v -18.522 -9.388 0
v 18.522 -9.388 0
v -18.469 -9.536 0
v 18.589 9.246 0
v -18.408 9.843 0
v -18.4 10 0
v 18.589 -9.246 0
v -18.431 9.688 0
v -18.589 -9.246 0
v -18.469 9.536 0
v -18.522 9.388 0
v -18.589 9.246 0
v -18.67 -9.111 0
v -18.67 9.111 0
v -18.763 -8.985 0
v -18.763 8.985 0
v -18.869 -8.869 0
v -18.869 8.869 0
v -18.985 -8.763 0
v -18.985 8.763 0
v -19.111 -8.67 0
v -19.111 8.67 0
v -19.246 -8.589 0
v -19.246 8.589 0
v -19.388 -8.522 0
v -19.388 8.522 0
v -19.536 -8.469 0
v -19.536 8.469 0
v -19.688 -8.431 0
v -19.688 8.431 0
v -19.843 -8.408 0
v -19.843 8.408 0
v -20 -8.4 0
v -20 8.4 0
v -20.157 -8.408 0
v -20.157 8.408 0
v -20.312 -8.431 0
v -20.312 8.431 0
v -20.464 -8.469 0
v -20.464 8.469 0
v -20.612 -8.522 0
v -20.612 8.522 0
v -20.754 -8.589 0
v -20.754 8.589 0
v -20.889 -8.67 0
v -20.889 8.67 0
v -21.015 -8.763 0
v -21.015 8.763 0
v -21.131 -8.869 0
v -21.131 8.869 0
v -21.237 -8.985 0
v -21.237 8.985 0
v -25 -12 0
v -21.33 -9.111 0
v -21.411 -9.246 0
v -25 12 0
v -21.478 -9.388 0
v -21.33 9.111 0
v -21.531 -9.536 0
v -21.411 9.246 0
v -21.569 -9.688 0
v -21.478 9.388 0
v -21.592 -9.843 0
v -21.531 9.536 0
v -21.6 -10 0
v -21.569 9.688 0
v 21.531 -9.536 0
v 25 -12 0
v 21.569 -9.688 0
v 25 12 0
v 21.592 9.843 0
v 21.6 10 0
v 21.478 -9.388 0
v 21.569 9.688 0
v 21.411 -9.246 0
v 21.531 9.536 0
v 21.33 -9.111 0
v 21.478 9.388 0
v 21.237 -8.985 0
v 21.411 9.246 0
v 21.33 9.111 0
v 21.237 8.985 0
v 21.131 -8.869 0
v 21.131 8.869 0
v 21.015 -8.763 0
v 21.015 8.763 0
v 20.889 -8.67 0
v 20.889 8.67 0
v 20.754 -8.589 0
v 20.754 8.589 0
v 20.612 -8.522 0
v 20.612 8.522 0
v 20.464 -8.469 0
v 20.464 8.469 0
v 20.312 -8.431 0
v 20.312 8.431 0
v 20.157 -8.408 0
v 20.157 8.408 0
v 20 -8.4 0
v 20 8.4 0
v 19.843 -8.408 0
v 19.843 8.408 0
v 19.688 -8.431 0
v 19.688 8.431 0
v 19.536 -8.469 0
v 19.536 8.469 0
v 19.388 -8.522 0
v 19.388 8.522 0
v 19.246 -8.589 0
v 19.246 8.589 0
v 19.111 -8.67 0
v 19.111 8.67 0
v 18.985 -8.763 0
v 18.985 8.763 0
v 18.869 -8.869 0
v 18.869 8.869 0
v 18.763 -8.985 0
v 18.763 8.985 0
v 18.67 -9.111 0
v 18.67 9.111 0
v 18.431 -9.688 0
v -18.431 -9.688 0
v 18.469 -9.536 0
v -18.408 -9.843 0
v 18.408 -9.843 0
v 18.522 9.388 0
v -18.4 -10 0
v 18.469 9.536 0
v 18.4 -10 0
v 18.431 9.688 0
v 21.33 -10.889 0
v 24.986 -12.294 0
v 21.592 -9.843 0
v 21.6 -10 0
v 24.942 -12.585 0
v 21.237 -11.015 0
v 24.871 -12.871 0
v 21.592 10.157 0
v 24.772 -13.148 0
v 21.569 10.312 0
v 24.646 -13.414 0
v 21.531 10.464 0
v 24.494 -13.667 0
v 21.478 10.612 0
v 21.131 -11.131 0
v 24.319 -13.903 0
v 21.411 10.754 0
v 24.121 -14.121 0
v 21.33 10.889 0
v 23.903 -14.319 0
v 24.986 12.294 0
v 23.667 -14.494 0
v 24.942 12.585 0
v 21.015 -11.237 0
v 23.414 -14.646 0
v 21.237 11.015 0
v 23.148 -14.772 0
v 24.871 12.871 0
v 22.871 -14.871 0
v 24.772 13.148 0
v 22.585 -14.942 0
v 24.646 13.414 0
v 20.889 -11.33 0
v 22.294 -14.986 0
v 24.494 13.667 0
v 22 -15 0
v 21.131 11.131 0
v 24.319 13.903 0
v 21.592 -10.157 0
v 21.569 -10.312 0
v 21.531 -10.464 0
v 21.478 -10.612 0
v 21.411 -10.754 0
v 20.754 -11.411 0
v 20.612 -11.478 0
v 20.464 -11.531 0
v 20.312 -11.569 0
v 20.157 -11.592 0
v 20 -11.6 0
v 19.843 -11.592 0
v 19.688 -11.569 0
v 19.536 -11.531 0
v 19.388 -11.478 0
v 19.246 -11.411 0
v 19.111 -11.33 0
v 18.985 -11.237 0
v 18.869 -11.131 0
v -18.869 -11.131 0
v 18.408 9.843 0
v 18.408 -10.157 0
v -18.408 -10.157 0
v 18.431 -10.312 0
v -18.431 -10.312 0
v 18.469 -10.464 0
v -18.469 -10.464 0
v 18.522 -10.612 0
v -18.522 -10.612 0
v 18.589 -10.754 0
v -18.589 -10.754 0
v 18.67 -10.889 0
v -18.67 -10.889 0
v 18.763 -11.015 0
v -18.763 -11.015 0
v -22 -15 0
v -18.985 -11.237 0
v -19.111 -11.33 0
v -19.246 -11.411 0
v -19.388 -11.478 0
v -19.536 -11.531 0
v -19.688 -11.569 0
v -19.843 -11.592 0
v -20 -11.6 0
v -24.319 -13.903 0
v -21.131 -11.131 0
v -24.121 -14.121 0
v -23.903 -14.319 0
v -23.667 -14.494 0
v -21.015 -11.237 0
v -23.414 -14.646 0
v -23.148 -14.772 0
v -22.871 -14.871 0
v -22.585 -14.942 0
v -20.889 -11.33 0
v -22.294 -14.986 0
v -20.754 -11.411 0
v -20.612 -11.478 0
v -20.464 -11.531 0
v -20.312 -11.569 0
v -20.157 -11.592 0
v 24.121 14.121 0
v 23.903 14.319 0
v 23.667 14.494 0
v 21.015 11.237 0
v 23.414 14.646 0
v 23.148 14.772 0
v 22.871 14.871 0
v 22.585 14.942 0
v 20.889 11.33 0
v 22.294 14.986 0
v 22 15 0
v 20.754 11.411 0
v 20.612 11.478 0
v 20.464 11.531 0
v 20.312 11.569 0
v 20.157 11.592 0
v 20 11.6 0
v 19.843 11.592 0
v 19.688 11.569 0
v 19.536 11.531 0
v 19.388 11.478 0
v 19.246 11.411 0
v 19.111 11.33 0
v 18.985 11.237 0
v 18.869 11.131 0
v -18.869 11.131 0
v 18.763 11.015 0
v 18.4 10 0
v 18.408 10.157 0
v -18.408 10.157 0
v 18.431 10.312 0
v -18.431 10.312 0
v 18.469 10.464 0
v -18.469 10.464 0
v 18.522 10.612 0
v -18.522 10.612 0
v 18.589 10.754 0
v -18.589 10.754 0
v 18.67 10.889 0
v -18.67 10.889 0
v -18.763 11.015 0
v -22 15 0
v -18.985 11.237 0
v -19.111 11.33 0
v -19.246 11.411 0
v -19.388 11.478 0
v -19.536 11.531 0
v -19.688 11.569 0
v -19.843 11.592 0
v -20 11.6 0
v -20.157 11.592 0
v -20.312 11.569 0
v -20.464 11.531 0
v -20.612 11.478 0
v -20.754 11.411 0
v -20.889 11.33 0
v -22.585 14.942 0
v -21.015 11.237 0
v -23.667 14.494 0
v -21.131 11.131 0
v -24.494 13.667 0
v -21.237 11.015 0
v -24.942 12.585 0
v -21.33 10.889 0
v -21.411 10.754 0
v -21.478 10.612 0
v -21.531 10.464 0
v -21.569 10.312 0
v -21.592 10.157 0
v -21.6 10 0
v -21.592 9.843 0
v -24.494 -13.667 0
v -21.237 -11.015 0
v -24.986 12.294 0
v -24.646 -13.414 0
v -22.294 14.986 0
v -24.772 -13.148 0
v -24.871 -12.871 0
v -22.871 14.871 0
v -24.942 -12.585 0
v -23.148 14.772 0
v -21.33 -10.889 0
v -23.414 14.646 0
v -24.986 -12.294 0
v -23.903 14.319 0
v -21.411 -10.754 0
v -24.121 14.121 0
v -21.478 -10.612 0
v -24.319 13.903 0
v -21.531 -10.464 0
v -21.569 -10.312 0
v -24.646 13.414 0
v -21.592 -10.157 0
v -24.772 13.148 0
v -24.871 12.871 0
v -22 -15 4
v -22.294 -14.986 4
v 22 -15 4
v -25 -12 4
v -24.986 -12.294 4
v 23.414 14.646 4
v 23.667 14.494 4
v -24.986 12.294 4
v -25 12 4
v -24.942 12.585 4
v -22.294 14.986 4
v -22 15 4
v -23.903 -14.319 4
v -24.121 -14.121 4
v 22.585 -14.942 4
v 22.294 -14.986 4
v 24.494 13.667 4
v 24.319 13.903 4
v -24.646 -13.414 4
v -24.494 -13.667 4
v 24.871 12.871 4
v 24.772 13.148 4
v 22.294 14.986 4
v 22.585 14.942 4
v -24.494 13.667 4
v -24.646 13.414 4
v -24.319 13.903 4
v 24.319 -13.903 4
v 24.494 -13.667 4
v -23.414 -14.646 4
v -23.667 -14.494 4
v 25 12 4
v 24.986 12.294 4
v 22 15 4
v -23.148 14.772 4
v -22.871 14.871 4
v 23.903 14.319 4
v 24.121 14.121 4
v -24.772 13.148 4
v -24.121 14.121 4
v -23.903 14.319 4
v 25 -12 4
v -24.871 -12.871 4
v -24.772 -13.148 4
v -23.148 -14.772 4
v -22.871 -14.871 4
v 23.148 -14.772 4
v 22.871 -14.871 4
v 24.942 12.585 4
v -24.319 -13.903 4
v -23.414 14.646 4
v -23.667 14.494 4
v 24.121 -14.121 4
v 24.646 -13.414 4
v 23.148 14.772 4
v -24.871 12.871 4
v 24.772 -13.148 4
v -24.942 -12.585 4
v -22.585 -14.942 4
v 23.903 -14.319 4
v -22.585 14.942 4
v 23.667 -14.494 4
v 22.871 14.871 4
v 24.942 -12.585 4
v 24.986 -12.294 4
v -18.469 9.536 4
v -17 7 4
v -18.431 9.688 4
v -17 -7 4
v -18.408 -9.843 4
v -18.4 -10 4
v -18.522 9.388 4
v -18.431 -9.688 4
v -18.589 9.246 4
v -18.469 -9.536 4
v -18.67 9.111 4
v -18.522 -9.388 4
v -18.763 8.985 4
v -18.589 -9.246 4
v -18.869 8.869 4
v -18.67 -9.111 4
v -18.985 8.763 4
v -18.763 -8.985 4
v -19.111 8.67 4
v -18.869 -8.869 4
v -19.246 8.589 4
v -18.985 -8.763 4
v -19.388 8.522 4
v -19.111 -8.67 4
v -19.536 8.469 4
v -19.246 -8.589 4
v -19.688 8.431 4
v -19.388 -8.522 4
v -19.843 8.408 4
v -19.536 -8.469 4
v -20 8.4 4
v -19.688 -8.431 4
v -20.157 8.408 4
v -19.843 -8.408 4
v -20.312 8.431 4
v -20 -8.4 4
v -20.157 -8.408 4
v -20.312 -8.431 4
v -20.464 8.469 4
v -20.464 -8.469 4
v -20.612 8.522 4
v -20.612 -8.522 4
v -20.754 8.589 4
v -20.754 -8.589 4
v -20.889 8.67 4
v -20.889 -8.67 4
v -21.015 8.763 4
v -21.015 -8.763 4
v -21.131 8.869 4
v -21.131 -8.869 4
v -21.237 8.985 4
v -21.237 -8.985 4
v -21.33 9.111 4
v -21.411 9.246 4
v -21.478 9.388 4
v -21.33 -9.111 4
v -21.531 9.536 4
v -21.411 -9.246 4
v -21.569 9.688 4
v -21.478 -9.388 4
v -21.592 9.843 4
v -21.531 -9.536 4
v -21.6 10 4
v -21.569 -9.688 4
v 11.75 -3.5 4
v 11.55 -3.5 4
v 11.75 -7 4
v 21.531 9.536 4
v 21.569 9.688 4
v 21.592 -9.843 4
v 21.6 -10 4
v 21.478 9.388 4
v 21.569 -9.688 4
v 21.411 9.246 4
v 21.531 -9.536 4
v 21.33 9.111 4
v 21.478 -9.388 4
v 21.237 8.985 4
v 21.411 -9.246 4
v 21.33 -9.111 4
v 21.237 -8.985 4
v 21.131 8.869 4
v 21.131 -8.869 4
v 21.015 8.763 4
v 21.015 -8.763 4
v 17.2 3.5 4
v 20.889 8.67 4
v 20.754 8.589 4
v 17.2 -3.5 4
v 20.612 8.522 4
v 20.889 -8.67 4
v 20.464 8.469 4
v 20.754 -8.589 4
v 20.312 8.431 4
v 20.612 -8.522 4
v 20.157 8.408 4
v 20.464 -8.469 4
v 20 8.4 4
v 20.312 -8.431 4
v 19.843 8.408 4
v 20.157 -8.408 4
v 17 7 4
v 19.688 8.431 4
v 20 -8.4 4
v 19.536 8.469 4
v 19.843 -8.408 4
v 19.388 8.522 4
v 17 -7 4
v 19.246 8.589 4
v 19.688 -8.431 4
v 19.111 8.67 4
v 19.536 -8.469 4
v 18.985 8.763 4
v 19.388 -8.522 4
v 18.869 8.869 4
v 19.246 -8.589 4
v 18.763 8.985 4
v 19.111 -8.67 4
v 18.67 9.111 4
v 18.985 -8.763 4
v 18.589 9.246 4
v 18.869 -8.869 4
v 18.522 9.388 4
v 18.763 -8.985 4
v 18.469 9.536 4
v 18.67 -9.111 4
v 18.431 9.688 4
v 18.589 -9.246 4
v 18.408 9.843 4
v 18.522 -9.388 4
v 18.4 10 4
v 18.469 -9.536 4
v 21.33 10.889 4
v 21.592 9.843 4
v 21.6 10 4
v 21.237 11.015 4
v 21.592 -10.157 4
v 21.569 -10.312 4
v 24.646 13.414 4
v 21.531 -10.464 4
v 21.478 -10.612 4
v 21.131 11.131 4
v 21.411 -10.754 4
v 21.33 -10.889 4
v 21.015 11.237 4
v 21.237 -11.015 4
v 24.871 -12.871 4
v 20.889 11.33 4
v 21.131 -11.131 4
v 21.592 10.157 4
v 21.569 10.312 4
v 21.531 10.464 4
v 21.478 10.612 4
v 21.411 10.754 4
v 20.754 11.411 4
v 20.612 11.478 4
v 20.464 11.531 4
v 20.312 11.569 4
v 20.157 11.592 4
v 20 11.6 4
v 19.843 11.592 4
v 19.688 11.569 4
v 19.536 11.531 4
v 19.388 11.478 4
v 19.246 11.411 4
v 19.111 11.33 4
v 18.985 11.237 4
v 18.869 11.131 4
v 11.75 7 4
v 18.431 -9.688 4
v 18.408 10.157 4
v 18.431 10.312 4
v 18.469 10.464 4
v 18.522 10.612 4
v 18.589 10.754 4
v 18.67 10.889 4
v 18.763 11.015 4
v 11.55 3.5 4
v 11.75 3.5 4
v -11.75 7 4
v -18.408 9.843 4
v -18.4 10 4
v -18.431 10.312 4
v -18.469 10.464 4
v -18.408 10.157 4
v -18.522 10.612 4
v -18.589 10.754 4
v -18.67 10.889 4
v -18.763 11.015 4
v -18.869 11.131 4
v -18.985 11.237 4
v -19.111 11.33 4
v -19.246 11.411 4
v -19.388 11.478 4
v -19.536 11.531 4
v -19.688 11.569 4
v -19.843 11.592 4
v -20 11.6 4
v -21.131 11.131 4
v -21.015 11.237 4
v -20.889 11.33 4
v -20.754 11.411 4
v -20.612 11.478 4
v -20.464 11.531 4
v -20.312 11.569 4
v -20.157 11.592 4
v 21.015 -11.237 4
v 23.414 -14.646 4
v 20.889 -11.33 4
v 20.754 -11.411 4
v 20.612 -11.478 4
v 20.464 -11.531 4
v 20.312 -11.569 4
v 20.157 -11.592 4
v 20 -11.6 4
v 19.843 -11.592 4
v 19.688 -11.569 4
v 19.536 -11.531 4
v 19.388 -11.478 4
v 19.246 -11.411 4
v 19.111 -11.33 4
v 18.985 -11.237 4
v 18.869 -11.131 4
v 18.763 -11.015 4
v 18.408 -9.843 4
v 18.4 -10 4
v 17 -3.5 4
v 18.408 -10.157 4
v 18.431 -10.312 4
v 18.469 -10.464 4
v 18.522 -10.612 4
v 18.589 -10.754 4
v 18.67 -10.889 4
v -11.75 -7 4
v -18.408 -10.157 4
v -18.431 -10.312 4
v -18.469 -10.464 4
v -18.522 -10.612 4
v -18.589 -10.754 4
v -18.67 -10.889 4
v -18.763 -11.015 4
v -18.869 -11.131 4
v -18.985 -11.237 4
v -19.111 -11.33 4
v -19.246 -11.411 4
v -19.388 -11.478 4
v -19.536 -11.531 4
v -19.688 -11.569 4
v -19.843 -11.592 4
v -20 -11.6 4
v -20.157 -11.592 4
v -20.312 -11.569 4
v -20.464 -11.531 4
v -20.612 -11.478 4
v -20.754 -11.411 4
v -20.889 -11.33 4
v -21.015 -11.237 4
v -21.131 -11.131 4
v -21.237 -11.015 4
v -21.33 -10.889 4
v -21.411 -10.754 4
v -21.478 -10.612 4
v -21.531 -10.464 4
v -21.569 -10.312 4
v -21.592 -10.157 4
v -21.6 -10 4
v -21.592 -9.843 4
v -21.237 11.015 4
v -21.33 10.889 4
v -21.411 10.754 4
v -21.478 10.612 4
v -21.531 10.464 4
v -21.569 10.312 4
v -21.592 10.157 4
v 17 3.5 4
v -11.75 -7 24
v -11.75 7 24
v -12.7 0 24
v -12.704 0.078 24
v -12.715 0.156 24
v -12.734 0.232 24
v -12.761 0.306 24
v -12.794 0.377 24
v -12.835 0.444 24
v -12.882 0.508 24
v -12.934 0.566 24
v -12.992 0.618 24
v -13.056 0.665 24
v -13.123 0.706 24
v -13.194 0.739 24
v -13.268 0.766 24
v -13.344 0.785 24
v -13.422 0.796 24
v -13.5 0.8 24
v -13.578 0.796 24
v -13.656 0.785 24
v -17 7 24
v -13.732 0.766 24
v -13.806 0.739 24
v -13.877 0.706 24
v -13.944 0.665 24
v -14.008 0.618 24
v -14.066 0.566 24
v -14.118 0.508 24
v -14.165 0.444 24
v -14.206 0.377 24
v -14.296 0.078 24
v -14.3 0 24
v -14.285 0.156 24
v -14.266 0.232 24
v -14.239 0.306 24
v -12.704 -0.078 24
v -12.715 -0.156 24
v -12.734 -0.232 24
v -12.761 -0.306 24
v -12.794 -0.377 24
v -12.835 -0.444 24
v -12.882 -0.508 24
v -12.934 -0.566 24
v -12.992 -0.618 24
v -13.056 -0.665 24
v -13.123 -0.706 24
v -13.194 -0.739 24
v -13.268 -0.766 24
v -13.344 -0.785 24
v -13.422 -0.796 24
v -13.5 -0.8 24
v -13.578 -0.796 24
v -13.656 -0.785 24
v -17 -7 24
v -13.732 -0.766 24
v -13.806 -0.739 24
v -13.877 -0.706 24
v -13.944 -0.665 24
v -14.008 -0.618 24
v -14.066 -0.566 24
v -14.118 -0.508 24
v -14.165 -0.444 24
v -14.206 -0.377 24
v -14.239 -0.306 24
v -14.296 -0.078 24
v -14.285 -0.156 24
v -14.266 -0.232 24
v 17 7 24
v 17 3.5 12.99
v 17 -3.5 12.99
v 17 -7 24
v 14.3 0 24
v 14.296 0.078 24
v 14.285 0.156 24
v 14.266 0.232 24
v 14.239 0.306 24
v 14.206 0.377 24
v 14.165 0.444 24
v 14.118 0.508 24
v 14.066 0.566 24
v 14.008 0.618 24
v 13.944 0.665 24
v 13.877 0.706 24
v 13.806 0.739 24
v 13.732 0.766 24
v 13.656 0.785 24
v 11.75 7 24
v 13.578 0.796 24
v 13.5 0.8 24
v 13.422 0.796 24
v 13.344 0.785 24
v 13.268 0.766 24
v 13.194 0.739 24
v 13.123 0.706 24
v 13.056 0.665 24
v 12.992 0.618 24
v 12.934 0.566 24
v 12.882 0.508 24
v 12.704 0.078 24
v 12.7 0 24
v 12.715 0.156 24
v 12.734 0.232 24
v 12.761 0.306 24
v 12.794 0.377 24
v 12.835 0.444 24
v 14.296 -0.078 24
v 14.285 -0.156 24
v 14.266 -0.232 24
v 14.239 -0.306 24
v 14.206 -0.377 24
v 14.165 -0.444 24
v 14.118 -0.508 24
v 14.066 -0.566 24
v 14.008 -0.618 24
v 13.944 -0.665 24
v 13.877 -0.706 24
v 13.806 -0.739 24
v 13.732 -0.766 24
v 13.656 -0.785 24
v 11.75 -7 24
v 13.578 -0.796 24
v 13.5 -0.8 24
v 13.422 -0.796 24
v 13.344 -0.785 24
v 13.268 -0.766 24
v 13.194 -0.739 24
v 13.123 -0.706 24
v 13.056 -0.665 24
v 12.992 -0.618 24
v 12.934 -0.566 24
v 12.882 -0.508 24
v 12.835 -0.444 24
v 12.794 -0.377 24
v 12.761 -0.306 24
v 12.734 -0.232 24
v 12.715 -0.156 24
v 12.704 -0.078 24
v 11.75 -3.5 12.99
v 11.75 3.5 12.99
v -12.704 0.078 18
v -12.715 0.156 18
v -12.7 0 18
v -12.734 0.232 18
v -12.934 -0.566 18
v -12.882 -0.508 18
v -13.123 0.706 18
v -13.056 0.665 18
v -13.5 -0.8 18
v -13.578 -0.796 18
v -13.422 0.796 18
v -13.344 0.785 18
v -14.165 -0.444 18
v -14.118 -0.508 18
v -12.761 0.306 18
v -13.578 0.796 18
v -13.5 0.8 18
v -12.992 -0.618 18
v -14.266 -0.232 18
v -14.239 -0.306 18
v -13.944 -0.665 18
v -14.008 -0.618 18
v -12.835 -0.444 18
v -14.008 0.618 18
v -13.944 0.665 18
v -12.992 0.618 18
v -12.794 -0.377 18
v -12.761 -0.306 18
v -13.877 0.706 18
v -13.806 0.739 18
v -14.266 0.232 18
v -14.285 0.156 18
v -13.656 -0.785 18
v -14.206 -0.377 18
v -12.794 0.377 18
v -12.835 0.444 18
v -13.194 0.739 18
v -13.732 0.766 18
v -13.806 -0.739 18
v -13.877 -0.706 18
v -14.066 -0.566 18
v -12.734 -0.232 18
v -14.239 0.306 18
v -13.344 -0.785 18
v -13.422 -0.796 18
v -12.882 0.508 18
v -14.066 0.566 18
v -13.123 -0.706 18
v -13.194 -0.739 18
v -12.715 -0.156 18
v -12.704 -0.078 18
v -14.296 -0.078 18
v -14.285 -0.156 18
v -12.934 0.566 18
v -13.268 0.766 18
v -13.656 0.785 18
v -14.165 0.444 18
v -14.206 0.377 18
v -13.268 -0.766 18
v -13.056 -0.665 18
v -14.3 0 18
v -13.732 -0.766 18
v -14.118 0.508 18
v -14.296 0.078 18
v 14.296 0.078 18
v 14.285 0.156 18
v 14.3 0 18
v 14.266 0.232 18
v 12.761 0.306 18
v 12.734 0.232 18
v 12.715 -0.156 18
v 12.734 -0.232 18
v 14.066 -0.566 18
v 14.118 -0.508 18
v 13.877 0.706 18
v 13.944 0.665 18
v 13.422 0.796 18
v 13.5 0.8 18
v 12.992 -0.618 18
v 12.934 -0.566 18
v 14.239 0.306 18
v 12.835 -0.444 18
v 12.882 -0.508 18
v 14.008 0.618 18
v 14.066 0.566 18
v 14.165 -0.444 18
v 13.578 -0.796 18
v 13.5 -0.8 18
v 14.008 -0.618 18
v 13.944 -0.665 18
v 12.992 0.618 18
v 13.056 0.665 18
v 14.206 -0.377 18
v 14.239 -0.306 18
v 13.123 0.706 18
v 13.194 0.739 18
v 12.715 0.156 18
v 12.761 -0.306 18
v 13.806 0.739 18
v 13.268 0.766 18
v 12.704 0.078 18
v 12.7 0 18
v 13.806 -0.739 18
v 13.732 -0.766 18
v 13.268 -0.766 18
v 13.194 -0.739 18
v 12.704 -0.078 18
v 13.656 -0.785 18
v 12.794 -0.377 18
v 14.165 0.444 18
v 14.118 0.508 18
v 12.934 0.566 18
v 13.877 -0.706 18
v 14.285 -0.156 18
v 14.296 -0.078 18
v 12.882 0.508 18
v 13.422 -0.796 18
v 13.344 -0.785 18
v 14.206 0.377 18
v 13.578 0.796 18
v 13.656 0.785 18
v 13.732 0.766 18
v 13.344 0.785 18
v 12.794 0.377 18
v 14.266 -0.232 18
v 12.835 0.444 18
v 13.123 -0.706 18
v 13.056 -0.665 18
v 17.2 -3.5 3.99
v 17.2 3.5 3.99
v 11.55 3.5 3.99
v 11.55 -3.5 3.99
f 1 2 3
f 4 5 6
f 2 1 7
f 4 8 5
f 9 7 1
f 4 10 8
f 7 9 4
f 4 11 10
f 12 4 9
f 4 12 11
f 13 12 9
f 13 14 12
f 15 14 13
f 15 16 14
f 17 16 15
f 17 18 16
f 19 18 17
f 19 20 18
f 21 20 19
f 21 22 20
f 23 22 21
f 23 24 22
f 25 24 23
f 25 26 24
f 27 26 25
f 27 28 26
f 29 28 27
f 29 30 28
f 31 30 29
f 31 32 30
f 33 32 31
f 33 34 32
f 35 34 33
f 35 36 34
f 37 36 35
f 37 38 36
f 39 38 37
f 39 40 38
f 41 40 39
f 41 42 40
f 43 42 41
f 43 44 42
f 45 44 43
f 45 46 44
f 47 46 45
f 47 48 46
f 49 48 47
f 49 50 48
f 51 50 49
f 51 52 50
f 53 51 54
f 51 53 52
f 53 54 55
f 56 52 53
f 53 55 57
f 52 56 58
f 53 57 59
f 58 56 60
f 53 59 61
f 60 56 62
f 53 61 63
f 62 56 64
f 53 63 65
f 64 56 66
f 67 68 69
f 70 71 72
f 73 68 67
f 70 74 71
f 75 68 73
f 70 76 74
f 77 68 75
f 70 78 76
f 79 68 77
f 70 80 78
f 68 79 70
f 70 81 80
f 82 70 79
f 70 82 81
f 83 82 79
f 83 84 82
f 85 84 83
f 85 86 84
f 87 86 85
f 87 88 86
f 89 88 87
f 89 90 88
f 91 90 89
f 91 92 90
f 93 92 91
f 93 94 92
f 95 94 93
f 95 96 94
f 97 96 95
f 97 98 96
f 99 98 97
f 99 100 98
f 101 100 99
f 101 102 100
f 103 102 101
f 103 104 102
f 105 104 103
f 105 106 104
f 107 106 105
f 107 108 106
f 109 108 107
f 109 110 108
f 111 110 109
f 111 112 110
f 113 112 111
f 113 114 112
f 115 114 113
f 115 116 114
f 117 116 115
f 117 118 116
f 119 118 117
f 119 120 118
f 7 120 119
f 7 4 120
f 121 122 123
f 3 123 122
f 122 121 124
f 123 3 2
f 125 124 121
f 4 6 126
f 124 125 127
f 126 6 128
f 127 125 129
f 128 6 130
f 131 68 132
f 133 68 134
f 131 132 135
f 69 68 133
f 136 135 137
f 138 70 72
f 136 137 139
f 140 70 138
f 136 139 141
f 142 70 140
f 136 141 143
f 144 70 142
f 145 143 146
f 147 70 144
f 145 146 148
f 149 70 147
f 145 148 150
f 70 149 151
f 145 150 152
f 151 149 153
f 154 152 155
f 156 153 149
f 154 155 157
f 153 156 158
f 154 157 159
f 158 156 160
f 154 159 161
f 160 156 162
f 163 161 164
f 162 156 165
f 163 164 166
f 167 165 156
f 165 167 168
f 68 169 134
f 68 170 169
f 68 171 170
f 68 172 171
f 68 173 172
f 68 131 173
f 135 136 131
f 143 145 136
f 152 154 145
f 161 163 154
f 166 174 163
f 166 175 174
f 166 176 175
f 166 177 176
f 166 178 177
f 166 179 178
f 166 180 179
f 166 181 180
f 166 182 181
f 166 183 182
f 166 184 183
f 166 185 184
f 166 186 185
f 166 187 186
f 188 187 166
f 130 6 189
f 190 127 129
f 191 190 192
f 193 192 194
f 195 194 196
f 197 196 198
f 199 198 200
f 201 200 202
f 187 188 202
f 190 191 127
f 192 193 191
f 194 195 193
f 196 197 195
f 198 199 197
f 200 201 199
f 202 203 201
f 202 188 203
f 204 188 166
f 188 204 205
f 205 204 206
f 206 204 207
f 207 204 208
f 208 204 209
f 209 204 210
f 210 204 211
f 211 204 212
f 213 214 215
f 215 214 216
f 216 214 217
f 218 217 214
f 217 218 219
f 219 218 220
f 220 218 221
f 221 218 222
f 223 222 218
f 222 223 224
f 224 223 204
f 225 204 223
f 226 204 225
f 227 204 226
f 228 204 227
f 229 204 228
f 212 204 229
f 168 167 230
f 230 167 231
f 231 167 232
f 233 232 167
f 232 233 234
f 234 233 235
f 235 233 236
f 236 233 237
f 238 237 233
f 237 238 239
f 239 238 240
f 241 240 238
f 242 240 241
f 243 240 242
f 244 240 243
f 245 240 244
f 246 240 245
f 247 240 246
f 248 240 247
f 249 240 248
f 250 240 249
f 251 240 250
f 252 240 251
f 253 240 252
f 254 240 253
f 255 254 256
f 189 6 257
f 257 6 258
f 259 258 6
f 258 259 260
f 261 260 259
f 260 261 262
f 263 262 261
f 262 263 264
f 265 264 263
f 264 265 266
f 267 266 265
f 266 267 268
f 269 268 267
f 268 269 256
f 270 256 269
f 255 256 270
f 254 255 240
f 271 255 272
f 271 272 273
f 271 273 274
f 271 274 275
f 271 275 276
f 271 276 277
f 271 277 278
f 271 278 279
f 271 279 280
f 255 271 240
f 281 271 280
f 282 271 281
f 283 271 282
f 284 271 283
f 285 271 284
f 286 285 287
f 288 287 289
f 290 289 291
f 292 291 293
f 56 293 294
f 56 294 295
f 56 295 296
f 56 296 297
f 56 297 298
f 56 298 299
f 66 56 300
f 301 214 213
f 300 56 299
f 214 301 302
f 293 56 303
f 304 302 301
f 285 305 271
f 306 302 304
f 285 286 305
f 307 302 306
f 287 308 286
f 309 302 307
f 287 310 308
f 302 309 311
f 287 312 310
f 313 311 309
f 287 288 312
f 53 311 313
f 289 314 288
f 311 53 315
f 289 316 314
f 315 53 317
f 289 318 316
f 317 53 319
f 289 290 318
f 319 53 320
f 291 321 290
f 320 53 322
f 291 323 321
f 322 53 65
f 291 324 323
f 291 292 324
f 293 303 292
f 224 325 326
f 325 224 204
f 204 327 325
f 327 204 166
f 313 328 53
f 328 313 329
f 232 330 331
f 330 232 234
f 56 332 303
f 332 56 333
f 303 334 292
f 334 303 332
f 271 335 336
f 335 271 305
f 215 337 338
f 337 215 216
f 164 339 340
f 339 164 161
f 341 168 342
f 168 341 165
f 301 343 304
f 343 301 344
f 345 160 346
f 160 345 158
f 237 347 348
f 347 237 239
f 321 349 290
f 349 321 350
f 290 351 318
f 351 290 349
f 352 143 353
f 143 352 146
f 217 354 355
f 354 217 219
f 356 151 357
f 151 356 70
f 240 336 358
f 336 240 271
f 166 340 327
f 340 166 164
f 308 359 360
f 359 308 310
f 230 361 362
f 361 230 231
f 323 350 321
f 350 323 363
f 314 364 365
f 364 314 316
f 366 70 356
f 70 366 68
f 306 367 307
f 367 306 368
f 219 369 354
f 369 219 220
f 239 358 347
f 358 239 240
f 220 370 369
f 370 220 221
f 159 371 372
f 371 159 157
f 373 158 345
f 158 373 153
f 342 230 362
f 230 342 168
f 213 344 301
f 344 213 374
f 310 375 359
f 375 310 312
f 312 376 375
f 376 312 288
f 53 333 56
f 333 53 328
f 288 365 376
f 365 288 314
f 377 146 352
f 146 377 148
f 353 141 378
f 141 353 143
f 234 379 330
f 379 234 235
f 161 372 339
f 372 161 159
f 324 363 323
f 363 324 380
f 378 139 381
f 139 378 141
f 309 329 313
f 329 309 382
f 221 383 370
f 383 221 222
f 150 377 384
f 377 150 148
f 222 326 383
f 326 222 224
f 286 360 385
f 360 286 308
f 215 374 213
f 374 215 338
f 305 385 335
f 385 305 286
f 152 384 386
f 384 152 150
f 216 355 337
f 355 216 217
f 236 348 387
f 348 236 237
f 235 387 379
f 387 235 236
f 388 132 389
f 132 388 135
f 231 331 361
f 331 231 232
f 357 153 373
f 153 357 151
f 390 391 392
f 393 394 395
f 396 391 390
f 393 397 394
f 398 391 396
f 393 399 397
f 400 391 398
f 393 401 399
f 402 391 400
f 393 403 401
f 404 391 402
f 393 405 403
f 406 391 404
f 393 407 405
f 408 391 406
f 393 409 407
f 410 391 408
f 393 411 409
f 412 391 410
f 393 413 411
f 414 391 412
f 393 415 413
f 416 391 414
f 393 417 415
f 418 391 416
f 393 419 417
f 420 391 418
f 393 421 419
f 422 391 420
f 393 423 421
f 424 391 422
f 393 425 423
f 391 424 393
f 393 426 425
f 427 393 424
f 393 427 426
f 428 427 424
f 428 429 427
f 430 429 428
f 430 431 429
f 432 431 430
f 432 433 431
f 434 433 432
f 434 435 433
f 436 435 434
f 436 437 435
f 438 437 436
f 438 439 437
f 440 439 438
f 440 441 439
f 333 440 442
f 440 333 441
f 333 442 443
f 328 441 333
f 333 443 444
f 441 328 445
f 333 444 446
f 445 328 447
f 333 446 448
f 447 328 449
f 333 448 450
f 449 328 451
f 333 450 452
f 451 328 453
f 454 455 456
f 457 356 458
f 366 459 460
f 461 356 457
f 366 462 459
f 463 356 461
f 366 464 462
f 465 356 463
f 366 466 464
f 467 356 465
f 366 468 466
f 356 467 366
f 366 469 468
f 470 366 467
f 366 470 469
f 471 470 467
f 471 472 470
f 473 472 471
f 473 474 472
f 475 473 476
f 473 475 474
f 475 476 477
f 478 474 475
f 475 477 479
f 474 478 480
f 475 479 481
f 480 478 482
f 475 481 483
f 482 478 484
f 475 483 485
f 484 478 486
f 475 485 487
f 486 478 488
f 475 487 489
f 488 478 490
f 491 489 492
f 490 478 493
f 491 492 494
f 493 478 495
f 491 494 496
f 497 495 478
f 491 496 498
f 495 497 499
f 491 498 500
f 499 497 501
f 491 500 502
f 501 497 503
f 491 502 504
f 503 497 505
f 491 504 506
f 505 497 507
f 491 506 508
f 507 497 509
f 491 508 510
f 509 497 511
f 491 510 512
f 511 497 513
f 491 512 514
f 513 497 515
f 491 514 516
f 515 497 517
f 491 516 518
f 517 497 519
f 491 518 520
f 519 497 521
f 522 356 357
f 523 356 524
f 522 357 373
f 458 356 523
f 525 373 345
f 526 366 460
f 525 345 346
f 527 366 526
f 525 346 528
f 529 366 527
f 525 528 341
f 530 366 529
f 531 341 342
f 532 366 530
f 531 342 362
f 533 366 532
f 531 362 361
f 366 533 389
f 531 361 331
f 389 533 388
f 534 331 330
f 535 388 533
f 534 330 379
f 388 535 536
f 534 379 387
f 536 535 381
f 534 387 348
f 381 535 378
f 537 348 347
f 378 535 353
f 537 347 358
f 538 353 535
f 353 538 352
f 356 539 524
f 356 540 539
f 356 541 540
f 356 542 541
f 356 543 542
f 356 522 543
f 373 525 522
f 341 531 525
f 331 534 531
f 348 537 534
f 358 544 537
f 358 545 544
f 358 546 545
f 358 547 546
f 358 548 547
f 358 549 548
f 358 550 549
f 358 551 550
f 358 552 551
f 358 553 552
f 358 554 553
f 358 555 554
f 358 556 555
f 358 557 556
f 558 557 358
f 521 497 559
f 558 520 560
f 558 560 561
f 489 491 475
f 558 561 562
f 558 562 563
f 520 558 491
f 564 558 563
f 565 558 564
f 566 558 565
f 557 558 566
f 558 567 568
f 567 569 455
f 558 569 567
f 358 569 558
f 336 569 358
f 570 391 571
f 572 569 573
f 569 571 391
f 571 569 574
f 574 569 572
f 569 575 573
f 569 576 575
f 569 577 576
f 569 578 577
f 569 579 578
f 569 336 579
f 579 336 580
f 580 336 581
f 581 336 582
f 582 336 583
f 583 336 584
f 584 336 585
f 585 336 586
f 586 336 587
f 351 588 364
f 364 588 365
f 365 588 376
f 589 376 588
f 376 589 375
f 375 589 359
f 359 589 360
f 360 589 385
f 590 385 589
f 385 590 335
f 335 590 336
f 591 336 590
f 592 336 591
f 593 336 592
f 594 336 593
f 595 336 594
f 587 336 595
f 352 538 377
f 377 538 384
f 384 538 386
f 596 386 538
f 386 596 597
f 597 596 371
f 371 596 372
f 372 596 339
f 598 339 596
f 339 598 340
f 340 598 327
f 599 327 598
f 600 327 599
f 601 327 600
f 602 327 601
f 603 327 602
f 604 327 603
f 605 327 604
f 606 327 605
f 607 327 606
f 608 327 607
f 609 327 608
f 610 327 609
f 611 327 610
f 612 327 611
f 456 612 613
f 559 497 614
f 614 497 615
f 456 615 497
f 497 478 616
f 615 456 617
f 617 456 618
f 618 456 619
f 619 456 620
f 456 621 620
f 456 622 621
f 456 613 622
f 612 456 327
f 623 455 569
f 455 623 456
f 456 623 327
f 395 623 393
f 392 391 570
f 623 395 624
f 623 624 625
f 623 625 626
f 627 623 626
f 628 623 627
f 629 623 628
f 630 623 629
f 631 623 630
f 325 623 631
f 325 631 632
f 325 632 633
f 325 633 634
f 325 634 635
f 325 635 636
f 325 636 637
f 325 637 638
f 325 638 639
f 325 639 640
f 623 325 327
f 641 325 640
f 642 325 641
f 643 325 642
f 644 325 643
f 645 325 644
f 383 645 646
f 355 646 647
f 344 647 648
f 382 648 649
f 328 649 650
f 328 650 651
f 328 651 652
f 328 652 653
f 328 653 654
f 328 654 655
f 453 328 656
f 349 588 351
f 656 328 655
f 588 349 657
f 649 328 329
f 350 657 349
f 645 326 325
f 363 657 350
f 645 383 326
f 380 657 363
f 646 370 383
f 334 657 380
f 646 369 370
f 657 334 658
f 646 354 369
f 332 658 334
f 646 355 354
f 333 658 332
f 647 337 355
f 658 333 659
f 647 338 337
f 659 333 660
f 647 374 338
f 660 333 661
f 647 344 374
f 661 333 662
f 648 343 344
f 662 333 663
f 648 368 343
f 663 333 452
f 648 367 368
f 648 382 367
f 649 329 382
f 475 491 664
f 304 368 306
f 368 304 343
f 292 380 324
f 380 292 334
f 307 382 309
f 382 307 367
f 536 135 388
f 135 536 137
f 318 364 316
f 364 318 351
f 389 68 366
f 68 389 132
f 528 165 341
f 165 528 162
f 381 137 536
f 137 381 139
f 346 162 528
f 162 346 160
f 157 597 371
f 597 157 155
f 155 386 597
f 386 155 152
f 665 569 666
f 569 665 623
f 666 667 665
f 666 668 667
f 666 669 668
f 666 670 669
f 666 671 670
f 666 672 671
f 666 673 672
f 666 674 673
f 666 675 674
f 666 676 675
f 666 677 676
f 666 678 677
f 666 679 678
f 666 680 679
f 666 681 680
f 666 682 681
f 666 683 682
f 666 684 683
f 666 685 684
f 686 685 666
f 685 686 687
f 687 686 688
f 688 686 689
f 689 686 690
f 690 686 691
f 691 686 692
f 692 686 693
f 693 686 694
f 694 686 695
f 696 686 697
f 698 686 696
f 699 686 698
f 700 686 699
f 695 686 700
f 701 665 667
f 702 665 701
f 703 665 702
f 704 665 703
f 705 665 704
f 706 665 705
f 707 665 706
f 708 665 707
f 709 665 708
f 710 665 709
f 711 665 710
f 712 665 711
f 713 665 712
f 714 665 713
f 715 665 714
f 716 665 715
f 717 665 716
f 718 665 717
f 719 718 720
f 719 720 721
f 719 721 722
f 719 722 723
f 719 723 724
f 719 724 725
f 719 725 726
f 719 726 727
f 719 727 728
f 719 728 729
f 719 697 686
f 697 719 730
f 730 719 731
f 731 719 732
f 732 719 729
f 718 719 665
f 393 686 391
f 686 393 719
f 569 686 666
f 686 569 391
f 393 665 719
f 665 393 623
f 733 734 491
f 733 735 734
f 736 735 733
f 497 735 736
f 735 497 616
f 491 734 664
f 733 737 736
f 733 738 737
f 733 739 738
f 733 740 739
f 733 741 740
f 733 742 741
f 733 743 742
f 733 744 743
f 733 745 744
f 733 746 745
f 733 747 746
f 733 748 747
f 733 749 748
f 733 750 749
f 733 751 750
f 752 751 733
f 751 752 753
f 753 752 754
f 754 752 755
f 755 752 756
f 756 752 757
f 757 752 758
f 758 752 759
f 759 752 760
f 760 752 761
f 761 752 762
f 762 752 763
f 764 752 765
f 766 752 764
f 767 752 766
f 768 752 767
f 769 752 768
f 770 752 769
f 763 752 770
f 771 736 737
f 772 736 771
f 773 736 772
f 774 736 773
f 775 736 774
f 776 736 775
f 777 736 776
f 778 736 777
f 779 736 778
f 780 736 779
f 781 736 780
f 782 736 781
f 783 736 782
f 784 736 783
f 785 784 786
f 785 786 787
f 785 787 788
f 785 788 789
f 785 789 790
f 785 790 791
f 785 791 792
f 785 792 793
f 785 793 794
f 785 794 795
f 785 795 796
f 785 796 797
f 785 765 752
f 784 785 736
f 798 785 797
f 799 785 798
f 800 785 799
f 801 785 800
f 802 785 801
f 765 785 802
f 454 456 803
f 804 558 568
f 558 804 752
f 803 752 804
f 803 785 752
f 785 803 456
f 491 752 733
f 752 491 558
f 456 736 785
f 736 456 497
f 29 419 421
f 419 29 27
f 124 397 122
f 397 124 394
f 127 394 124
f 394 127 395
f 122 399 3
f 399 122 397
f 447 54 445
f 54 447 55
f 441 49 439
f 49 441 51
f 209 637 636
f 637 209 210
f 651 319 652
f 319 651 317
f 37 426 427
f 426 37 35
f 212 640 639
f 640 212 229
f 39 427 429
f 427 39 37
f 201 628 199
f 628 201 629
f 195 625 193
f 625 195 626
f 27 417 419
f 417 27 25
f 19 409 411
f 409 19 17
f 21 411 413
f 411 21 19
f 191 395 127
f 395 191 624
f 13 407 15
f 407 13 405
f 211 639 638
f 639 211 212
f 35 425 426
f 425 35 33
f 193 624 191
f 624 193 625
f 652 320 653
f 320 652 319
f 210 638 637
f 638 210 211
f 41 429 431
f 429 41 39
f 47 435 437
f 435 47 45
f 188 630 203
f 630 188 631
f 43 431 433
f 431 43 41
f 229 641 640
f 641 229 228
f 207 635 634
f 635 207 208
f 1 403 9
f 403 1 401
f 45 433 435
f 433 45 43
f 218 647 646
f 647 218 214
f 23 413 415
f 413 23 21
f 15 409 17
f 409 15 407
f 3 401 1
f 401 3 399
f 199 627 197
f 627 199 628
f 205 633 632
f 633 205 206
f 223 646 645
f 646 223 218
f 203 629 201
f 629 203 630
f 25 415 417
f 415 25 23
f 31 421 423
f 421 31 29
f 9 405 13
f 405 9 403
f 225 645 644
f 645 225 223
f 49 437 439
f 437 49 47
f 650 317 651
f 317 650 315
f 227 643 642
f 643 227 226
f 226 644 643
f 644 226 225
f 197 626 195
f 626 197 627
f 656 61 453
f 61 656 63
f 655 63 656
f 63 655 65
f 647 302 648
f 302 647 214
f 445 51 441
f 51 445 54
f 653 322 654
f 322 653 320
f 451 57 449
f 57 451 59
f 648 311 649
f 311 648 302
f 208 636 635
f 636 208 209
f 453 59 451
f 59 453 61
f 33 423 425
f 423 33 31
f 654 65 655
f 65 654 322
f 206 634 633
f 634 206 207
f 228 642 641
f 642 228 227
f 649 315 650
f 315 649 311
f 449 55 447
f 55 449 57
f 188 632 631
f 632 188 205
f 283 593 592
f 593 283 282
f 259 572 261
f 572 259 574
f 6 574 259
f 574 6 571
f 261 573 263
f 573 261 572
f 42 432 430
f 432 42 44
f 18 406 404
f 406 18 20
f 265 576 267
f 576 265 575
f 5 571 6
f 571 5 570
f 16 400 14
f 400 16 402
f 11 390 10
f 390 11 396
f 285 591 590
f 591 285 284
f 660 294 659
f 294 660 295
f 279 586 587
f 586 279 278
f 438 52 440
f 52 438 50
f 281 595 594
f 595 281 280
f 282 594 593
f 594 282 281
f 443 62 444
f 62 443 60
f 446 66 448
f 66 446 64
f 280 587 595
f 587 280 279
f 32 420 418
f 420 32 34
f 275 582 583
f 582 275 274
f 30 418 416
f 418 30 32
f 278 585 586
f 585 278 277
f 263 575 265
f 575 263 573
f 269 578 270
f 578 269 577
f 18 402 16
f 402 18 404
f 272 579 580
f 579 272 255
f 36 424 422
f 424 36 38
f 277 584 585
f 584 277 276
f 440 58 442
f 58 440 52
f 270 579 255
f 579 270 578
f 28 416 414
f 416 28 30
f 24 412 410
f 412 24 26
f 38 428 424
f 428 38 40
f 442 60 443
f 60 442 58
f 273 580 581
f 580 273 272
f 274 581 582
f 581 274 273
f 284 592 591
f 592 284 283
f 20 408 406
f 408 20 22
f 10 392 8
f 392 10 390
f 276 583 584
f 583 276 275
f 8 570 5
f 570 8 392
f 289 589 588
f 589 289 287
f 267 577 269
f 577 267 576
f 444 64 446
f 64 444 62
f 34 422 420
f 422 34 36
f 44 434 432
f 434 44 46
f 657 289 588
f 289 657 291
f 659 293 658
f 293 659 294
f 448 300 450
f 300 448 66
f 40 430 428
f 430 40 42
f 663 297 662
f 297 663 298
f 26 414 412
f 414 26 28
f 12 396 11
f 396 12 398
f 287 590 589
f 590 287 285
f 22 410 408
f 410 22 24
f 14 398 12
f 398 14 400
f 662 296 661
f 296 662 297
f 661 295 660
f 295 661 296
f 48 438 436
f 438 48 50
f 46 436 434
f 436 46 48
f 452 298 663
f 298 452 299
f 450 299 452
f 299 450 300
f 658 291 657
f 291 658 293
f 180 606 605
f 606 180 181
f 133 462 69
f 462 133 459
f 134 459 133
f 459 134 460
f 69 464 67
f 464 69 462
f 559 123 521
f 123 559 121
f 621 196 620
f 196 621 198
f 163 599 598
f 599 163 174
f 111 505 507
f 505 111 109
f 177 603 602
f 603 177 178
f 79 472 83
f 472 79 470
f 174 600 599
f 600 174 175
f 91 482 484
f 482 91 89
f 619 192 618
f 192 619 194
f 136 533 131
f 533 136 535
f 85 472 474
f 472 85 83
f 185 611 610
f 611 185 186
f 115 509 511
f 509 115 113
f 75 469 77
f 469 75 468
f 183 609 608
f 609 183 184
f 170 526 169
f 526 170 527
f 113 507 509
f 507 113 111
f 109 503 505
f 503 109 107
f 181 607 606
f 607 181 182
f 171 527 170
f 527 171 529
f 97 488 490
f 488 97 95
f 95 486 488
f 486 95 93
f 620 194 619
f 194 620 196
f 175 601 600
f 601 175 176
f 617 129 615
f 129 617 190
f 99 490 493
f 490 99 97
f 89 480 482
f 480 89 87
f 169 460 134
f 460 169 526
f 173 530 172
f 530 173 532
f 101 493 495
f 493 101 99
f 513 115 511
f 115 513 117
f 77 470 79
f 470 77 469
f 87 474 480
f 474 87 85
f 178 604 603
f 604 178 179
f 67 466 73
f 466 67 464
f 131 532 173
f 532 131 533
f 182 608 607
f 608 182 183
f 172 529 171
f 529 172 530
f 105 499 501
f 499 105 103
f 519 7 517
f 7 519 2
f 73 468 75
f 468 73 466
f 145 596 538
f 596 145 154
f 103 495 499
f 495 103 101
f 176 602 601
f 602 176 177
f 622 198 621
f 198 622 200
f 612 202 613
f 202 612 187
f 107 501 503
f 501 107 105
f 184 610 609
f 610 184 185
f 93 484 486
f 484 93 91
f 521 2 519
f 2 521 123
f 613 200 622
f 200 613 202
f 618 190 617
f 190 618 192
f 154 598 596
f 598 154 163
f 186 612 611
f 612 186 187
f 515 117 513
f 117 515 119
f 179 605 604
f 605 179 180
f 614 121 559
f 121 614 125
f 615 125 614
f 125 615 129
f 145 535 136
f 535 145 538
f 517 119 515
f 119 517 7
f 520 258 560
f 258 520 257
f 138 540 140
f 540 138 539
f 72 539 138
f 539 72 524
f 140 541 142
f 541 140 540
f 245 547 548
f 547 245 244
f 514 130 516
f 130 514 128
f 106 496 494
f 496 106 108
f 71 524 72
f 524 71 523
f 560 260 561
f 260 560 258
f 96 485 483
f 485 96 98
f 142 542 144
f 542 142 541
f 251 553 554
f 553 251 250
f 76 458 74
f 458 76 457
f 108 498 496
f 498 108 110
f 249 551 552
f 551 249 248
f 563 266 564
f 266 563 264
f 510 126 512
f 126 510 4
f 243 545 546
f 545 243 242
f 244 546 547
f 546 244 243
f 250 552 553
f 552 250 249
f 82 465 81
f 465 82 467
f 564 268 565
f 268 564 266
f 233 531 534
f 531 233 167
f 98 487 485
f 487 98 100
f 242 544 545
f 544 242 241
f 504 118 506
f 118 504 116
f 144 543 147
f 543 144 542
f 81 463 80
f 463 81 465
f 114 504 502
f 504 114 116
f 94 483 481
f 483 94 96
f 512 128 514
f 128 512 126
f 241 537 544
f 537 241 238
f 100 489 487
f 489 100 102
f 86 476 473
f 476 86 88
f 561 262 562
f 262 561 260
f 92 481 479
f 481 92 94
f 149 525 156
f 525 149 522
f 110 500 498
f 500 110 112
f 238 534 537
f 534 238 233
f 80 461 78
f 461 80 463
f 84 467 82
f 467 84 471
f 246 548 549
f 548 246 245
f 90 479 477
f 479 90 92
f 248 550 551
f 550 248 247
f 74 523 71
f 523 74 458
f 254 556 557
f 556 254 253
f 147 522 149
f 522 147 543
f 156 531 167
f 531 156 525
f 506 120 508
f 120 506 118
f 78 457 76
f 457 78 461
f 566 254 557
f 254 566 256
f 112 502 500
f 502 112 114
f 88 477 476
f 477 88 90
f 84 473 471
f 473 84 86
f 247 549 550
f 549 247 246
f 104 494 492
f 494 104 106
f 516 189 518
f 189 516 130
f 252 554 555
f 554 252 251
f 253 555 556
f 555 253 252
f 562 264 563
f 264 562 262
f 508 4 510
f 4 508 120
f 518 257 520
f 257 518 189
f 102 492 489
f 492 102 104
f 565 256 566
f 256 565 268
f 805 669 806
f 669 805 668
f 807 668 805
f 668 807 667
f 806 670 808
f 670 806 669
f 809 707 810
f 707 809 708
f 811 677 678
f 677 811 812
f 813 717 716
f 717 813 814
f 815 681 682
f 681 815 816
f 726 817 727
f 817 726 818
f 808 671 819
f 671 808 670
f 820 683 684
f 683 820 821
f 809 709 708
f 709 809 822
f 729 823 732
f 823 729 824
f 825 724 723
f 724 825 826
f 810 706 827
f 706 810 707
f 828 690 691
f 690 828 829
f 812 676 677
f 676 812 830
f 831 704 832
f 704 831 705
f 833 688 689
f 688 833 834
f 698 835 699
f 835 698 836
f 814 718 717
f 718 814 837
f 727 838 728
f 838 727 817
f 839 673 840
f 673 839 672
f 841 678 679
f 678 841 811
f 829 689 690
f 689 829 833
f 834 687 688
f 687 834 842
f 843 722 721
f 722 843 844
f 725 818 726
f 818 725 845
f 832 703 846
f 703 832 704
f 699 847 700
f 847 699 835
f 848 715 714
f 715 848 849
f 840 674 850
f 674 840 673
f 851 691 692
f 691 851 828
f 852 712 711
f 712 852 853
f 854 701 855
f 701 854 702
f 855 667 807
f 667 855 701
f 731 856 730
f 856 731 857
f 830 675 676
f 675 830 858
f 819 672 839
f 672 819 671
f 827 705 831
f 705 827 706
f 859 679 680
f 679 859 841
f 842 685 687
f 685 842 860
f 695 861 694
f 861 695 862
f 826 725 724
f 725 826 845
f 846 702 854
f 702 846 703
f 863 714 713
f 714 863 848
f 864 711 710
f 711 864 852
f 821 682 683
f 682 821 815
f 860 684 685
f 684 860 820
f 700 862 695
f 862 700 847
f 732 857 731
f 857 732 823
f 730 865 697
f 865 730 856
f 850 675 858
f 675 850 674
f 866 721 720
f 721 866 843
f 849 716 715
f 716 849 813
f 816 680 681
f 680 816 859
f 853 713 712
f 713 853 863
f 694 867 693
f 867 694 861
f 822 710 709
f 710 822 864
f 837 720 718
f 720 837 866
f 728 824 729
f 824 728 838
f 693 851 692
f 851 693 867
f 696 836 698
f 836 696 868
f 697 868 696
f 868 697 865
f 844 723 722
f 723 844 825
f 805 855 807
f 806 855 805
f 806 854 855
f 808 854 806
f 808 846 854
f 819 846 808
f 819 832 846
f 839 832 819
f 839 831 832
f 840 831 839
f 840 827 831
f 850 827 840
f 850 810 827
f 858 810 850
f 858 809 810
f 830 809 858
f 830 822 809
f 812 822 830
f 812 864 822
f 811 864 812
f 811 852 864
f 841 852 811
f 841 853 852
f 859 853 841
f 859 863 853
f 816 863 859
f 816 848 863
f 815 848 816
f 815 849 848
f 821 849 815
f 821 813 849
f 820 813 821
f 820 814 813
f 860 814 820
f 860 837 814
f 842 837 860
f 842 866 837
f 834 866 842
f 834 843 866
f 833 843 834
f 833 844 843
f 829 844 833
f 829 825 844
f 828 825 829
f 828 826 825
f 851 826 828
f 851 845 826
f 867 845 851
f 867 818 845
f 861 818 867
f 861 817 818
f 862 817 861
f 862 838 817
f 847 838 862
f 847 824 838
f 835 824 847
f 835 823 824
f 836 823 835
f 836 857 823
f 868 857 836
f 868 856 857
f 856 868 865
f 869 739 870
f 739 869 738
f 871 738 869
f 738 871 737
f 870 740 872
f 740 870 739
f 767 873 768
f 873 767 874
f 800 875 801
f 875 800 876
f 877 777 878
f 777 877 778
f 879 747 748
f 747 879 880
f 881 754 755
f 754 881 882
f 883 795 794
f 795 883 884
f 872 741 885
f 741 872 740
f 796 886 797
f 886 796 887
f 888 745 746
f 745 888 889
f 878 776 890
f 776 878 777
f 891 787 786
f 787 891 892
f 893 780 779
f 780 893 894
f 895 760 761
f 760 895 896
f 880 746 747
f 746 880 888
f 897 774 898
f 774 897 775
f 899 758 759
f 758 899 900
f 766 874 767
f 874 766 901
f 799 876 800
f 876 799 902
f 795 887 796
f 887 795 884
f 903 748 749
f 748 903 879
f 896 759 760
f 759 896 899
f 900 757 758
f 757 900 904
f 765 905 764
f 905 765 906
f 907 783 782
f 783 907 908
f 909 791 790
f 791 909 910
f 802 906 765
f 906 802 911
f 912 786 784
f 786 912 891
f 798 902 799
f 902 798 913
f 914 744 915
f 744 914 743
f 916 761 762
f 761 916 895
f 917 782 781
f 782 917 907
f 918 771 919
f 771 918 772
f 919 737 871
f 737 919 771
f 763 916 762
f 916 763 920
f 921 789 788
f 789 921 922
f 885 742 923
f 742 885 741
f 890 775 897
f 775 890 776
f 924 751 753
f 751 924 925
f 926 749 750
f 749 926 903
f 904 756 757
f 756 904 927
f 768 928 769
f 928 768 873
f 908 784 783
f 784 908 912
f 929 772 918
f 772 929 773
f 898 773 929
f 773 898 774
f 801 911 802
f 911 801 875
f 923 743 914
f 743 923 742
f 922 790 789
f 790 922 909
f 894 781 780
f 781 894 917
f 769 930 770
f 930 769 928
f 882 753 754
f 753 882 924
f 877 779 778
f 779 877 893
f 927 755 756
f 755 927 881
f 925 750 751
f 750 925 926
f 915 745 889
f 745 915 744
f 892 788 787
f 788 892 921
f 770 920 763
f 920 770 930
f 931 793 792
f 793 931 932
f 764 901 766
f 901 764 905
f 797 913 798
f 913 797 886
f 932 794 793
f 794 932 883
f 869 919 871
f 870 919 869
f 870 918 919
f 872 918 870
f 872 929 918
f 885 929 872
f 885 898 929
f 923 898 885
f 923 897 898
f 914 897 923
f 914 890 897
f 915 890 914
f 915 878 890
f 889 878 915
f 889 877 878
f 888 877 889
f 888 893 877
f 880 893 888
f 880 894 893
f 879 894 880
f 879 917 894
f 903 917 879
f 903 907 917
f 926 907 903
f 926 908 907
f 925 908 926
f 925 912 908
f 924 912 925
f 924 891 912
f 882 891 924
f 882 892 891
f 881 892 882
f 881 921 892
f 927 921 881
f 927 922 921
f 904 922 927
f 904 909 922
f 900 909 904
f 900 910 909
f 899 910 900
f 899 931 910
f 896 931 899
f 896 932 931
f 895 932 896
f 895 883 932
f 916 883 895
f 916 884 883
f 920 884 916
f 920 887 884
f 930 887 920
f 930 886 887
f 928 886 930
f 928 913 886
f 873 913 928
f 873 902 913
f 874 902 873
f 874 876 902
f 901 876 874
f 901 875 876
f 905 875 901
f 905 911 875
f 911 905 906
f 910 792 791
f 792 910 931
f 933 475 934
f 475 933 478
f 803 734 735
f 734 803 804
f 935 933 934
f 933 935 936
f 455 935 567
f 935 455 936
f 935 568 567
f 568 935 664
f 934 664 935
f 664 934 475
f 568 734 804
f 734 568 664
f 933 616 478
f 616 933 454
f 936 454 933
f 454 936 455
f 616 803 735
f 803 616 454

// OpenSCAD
// OS20 SG90 vertical mount v1. Units: mm.
// Nominal SG90 dimensions; verify actual tab pitch and body depth below tabs.
$fn=64;
pitch=20;
base_x=50; base_y=30; base_z=4;
base_hole=3.2;
servo_pitch=27;
body_x=23.5; // clear opening between supports
pedestal_h=20;
pedestal_y=14;
pedestal_outer_x=17; // outer edge measured from center
pilot_d=1.6; pilot_depth=6;
corner_r=3;
cable_slot_y=7; cable_slot_h=9;
// Cable exits along +X, through the lower part of the right support.
module rounded_base(){
  hull() for(x=[-1,1],y=[-1,1])
    translate([x*(base_x/2-corner_r),y*(base_y/2-corner_r),0]) cylinder(r=corner_r,h=base_z);
}
module pedestal(side){
  translate([side*(body_x/2+pedestal_outer_x)/2,0,base_z+pedestal_h/2-0.05])
    cube([pedestal_outer_x-body_x/2,pedestal_y,pedestal_h+0.1],center=true);
}
difference(){
 union(){ rounded_base(); pedestal(-1); pedestal(1); }
 for(x=[-pitch,pitch],y=[-pitch/2,pitch/2])
   translate([x,y,-1]) cylinder(d=base_hole,h=base_z+2);
 for(x=[-servo_pitch/2,servo_pitch/2])
   translate([x,0,base_z+pedestal_h-pilot_depth]) cylinder(d=pilot_d,h=pilot_depth+1);
 // Open-ended cable tunnel; short bridge over 7 mm opening.
 translate([body_x/2-0.2,-cable_slot_y/2,base_z-0.01])
   cube([pedestal_outer_x-body_x/2+0.4,cable_slot_y,cable_slot_h]);
}
